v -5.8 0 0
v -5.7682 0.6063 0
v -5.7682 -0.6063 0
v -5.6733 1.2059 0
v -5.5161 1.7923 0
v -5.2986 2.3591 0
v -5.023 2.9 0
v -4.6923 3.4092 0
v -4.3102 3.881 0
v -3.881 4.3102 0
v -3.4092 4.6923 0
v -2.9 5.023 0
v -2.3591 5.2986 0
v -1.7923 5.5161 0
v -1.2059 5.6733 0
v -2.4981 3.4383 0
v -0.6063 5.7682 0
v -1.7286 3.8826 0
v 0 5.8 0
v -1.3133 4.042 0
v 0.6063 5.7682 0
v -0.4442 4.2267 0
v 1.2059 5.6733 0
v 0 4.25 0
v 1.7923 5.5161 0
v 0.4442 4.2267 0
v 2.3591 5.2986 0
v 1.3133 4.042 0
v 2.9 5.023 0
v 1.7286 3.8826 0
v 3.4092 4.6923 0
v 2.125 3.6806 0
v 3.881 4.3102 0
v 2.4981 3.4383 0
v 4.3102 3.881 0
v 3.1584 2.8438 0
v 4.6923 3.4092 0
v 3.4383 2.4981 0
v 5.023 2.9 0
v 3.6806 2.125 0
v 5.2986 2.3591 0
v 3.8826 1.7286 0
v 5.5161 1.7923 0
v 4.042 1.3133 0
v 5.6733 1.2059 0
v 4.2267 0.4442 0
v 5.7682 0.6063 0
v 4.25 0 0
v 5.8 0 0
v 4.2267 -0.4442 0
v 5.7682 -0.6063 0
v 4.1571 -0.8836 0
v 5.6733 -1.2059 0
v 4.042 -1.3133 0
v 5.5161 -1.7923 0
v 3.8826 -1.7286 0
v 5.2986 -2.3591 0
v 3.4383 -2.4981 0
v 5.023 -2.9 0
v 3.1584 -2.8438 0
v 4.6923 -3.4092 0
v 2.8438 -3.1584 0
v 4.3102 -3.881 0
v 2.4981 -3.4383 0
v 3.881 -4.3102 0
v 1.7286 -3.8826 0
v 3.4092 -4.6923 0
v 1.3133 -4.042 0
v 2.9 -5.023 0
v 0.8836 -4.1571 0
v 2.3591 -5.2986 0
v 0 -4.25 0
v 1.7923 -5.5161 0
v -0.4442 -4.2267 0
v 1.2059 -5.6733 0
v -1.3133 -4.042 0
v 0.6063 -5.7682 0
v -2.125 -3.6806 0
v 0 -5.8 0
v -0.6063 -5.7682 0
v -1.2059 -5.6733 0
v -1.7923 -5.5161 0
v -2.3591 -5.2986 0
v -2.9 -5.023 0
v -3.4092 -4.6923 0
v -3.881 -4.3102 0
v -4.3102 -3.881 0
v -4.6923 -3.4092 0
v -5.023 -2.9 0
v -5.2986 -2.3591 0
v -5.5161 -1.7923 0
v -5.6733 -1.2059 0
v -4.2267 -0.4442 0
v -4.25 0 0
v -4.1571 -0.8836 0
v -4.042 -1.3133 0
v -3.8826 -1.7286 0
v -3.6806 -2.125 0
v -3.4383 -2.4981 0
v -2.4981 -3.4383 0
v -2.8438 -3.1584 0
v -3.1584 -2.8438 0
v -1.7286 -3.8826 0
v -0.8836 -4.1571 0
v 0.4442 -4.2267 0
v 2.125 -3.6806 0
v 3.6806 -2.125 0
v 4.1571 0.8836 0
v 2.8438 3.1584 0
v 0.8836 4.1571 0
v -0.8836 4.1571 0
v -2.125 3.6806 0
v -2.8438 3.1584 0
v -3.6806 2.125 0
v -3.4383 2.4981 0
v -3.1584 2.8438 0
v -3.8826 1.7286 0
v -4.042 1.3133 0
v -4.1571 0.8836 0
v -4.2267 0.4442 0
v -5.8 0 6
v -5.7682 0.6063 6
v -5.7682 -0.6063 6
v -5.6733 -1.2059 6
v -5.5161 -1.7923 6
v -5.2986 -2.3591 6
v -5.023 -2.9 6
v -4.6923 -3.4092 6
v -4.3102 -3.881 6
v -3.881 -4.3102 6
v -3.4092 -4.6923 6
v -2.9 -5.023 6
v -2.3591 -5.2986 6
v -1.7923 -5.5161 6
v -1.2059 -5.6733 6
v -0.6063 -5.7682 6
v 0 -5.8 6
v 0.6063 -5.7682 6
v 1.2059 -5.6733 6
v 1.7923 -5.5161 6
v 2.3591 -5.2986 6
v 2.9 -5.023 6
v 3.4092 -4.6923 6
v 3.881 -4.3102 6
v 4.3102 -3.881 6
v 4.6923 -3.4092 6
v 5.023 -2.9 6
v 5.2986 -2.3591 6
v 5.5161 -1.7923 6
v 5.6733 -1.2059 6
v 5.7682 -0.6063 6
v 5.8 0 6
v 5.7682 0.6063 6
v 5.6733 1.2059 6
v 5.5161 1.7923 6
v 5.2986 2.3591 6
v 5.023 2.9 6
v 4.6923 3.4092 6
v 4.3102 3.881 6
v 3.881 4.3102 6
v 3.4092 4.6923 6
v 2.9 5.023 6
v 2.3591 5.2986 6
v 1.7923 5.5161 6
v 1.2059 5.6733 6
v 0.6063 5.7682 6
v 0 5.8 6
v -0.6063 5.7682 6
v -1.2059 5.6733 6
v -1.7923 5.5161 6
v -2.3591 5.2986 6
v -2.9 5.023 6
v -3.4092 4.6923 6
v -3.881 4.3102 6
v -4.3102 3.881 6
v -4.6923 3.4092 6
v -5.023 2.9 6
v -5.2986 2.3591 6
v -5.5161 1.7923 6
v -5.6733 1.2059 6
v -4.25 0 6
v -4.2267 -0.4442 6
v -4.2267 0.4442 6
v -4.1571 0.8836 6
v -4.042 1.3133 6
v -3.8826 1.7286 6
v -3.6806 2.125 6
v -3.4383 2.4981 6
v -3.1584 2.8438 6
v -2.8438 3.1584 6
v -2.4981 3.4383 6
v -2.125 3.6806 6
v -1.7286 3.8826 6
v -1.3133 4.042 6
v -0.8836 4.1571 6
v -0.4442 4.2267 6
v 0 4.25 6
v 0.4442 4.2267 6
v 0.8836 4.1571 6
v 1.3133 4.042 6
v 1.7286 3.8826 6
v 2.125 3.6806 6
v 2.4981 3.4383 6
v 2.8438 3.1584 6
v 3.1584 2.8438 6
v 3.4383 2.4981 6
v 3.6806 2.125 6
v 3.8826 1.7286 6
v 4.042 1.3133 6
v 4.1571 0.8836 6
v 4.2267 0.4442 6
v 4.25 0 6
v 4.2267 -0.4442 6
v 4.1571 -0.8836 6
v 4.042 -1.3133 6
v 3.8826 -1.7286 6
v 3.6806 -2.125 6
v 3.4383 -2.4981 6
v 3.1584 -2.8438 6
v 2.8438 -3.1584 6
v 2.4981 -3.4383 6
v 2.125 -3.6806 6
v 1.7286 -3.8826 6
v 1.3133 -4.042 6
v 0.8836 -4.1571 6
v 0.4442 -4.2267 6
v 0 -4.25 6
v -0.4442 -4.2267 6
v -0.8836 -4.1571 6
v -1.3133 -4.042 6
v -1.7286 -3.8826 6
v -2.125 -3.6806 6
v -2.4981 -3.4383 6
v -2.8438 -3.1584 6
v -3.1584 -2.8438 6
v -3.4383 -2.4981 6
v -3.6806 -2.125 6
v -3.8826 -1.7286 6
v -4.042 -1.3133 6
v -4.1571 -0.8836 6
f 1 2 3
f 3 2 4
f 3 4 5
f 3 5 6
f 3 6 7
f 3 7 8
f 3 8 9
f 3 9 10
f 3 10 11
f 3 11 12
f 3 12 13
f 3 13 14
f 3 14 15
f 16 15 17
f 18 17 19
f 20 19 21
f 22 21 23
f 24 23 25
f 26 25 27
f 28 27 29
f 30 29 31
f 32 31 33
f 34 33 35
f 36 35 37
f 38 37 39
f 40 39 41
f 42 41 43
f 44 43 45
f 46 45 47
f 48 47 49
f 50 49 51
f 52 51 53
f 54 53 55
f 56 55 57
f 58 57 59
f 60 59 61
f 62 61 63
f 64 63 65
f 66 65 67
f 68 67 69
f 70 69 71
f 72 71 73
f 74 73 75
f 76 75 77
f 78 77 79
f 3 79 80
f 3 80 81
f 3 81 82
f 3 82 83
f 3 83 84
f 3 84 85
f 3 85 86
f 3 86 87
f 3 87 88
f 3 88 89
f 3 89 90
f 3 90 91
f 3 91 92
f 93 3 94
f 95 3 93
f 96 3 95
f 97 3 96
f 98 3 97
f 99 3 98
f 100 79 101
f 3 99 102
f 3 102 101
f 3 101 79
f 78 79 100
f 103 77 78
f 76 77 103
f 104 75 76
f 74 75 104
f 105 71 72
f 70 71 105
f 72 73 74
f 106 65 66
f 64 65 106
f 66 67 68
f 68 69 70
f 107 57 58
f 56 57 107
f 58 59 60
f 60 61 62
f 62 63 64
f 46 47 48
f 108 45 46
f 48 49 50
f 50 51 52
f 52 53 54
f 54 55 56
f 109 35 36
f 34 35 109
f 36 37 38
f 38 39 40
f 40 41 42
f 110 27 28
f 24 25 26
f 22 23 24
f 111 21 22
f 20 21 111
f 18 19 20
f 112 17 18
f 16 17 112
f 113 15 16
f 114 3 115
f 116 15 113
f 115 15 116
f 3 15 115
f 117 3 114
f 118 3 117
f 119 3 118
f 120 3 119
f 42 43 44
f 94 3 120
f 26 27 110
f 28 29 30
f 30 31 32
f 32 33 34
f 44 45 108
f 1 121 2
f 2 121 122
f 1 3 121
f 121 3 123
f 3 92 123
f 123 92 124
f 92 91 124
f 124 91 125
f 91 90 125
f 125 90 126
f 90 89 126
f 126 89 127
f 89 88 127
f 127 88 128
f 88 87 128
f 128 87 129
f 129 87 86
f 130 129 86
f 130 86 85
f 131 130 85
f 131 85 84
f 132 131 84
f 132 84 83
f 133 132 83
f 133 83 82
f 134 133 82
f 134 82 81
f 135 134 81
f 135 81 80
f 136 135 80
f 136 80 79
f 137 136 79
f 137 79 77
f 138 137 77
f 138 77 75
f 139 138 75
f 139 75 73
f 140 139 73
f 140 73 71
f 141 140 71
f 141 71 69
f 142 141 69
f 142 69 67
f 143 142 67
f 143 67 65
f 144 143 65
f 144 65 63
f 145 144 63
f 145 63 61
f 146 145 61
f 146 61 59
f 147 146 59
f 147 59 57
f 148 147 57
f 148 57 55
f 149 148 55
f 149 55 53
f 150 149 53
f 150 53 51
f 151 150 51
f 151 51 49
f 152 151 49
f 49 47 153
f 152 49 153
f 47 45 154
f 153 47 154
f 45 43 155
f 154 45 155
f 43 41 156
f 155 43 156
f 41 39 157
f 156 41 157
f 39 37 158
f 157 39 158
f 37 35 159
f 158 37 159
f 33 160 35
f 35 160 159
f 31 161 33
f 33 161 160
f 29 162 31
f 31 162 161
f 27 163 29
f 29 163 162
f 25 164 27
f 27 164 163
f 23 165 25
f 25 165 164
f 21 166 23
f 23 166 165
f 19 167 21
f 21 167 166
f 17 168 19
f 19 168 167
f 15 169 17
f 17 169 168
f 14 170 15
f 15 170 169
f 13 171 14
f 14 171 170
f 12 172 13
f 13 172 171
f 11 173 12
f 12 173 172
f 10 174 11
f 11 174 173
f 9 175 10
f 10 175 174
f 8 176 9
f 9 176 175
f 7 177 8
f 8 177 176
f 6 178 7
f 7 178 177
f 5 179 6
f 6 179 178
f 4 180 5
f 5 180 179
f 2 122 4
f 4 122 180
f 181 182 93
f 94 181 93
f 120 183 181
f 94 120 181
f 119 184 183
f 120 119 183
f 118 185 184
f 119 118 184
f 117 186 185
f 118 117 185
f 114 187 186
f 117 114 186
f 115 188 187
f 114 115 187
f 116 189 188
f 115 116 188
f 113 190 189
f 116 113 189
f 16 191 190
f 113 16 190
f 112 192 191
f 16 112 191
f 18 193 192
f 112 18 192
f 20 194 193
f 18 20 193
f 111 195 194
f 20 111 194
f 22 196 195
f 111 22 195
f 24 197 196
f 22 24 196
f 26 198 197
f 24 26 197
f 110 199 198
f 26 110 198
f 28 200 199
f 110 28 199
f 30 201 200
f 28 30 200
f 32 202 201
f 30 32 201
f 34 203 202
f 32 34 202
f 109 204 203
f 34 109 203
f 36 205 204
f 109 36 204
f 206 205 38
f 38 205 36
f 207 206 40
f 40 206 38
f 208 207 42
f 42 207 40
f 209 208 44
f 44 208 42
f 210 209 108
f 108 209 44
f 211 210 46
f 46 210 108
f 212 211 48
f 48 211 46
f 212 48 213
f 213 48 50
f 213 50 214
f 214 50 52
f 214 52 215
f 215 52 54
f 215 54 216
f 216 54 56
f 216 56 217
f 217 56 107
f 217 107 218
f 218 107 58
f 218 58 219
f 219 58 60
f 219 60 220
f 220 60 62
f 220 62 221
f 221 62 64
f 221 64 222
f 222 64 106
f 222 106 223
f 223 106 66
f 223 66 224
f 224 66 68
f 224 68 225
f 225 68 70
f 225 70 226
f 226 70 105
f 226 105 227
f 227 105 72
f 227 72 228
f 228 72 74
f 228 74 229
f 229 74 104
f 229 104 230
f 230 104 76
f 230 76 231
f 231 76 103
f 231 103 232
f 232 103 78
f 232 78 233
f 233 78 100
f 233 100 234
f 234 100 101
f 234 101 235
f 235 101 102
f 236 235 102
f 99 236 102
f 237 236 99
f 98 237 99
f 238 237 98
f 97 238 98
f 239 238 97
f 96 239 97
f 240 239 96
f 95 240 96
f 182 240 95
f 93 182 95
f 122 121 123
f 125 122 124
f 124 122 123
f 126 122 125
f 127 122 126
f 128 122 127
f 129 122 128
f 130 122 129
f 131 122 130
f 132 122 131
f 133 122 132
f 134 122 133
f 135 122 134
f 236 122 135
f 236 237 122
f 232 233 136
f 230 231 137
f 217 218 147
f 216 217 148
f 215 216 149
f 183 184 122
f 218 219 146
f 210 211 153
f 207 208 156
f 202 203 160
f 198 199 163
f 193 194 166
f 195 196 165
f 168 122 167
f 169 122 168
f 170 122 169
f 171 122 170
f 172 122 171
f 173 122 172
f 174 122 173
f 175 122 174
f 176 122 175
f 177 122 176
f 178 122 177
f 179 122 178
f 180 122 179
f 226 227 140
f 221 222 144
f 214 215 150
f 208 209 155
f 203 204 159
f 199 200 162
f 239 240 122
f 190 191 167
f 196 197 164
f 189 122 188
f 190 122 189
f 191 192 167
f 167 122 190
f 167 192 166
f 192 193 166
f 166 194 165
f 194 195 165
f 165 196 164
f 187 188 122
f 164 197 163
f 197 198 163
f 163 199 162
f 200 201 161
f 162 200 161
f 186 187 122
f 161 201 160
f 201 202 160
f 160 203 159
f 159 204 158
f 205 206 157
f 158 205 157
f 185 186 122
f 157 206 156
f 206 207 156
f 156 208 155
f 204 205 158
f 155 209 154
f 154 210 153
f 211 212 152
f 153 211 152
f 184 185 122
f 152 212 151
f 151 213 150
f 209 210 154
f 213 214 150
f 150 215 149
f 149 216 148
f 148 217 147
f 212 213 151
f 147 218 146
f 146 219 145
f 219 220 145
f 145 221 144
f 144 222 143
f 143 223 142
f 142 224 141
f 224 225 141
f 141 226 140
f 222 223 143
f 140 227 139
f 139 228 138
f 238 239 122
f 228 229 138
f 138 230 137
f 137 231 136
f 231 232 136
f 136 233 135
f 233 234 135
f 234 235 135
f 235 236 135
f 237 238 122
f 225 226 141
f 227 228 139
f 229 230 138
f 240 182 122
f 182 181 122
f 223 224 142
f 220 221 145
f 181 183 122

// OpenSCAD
/*
 * extruder gear spacer
 *
 * Moves the large gear out from the body to clear the bolt heads.
 *
 * Copyright 2012 <b@Zi.iS>
 * License CC BY 3.0
 */
$fn=60;

difference() {

cylinder(
	r=11.6/2,
	h=6
);

cylinder(
	r=8.5/2,
	h=6
);
}
